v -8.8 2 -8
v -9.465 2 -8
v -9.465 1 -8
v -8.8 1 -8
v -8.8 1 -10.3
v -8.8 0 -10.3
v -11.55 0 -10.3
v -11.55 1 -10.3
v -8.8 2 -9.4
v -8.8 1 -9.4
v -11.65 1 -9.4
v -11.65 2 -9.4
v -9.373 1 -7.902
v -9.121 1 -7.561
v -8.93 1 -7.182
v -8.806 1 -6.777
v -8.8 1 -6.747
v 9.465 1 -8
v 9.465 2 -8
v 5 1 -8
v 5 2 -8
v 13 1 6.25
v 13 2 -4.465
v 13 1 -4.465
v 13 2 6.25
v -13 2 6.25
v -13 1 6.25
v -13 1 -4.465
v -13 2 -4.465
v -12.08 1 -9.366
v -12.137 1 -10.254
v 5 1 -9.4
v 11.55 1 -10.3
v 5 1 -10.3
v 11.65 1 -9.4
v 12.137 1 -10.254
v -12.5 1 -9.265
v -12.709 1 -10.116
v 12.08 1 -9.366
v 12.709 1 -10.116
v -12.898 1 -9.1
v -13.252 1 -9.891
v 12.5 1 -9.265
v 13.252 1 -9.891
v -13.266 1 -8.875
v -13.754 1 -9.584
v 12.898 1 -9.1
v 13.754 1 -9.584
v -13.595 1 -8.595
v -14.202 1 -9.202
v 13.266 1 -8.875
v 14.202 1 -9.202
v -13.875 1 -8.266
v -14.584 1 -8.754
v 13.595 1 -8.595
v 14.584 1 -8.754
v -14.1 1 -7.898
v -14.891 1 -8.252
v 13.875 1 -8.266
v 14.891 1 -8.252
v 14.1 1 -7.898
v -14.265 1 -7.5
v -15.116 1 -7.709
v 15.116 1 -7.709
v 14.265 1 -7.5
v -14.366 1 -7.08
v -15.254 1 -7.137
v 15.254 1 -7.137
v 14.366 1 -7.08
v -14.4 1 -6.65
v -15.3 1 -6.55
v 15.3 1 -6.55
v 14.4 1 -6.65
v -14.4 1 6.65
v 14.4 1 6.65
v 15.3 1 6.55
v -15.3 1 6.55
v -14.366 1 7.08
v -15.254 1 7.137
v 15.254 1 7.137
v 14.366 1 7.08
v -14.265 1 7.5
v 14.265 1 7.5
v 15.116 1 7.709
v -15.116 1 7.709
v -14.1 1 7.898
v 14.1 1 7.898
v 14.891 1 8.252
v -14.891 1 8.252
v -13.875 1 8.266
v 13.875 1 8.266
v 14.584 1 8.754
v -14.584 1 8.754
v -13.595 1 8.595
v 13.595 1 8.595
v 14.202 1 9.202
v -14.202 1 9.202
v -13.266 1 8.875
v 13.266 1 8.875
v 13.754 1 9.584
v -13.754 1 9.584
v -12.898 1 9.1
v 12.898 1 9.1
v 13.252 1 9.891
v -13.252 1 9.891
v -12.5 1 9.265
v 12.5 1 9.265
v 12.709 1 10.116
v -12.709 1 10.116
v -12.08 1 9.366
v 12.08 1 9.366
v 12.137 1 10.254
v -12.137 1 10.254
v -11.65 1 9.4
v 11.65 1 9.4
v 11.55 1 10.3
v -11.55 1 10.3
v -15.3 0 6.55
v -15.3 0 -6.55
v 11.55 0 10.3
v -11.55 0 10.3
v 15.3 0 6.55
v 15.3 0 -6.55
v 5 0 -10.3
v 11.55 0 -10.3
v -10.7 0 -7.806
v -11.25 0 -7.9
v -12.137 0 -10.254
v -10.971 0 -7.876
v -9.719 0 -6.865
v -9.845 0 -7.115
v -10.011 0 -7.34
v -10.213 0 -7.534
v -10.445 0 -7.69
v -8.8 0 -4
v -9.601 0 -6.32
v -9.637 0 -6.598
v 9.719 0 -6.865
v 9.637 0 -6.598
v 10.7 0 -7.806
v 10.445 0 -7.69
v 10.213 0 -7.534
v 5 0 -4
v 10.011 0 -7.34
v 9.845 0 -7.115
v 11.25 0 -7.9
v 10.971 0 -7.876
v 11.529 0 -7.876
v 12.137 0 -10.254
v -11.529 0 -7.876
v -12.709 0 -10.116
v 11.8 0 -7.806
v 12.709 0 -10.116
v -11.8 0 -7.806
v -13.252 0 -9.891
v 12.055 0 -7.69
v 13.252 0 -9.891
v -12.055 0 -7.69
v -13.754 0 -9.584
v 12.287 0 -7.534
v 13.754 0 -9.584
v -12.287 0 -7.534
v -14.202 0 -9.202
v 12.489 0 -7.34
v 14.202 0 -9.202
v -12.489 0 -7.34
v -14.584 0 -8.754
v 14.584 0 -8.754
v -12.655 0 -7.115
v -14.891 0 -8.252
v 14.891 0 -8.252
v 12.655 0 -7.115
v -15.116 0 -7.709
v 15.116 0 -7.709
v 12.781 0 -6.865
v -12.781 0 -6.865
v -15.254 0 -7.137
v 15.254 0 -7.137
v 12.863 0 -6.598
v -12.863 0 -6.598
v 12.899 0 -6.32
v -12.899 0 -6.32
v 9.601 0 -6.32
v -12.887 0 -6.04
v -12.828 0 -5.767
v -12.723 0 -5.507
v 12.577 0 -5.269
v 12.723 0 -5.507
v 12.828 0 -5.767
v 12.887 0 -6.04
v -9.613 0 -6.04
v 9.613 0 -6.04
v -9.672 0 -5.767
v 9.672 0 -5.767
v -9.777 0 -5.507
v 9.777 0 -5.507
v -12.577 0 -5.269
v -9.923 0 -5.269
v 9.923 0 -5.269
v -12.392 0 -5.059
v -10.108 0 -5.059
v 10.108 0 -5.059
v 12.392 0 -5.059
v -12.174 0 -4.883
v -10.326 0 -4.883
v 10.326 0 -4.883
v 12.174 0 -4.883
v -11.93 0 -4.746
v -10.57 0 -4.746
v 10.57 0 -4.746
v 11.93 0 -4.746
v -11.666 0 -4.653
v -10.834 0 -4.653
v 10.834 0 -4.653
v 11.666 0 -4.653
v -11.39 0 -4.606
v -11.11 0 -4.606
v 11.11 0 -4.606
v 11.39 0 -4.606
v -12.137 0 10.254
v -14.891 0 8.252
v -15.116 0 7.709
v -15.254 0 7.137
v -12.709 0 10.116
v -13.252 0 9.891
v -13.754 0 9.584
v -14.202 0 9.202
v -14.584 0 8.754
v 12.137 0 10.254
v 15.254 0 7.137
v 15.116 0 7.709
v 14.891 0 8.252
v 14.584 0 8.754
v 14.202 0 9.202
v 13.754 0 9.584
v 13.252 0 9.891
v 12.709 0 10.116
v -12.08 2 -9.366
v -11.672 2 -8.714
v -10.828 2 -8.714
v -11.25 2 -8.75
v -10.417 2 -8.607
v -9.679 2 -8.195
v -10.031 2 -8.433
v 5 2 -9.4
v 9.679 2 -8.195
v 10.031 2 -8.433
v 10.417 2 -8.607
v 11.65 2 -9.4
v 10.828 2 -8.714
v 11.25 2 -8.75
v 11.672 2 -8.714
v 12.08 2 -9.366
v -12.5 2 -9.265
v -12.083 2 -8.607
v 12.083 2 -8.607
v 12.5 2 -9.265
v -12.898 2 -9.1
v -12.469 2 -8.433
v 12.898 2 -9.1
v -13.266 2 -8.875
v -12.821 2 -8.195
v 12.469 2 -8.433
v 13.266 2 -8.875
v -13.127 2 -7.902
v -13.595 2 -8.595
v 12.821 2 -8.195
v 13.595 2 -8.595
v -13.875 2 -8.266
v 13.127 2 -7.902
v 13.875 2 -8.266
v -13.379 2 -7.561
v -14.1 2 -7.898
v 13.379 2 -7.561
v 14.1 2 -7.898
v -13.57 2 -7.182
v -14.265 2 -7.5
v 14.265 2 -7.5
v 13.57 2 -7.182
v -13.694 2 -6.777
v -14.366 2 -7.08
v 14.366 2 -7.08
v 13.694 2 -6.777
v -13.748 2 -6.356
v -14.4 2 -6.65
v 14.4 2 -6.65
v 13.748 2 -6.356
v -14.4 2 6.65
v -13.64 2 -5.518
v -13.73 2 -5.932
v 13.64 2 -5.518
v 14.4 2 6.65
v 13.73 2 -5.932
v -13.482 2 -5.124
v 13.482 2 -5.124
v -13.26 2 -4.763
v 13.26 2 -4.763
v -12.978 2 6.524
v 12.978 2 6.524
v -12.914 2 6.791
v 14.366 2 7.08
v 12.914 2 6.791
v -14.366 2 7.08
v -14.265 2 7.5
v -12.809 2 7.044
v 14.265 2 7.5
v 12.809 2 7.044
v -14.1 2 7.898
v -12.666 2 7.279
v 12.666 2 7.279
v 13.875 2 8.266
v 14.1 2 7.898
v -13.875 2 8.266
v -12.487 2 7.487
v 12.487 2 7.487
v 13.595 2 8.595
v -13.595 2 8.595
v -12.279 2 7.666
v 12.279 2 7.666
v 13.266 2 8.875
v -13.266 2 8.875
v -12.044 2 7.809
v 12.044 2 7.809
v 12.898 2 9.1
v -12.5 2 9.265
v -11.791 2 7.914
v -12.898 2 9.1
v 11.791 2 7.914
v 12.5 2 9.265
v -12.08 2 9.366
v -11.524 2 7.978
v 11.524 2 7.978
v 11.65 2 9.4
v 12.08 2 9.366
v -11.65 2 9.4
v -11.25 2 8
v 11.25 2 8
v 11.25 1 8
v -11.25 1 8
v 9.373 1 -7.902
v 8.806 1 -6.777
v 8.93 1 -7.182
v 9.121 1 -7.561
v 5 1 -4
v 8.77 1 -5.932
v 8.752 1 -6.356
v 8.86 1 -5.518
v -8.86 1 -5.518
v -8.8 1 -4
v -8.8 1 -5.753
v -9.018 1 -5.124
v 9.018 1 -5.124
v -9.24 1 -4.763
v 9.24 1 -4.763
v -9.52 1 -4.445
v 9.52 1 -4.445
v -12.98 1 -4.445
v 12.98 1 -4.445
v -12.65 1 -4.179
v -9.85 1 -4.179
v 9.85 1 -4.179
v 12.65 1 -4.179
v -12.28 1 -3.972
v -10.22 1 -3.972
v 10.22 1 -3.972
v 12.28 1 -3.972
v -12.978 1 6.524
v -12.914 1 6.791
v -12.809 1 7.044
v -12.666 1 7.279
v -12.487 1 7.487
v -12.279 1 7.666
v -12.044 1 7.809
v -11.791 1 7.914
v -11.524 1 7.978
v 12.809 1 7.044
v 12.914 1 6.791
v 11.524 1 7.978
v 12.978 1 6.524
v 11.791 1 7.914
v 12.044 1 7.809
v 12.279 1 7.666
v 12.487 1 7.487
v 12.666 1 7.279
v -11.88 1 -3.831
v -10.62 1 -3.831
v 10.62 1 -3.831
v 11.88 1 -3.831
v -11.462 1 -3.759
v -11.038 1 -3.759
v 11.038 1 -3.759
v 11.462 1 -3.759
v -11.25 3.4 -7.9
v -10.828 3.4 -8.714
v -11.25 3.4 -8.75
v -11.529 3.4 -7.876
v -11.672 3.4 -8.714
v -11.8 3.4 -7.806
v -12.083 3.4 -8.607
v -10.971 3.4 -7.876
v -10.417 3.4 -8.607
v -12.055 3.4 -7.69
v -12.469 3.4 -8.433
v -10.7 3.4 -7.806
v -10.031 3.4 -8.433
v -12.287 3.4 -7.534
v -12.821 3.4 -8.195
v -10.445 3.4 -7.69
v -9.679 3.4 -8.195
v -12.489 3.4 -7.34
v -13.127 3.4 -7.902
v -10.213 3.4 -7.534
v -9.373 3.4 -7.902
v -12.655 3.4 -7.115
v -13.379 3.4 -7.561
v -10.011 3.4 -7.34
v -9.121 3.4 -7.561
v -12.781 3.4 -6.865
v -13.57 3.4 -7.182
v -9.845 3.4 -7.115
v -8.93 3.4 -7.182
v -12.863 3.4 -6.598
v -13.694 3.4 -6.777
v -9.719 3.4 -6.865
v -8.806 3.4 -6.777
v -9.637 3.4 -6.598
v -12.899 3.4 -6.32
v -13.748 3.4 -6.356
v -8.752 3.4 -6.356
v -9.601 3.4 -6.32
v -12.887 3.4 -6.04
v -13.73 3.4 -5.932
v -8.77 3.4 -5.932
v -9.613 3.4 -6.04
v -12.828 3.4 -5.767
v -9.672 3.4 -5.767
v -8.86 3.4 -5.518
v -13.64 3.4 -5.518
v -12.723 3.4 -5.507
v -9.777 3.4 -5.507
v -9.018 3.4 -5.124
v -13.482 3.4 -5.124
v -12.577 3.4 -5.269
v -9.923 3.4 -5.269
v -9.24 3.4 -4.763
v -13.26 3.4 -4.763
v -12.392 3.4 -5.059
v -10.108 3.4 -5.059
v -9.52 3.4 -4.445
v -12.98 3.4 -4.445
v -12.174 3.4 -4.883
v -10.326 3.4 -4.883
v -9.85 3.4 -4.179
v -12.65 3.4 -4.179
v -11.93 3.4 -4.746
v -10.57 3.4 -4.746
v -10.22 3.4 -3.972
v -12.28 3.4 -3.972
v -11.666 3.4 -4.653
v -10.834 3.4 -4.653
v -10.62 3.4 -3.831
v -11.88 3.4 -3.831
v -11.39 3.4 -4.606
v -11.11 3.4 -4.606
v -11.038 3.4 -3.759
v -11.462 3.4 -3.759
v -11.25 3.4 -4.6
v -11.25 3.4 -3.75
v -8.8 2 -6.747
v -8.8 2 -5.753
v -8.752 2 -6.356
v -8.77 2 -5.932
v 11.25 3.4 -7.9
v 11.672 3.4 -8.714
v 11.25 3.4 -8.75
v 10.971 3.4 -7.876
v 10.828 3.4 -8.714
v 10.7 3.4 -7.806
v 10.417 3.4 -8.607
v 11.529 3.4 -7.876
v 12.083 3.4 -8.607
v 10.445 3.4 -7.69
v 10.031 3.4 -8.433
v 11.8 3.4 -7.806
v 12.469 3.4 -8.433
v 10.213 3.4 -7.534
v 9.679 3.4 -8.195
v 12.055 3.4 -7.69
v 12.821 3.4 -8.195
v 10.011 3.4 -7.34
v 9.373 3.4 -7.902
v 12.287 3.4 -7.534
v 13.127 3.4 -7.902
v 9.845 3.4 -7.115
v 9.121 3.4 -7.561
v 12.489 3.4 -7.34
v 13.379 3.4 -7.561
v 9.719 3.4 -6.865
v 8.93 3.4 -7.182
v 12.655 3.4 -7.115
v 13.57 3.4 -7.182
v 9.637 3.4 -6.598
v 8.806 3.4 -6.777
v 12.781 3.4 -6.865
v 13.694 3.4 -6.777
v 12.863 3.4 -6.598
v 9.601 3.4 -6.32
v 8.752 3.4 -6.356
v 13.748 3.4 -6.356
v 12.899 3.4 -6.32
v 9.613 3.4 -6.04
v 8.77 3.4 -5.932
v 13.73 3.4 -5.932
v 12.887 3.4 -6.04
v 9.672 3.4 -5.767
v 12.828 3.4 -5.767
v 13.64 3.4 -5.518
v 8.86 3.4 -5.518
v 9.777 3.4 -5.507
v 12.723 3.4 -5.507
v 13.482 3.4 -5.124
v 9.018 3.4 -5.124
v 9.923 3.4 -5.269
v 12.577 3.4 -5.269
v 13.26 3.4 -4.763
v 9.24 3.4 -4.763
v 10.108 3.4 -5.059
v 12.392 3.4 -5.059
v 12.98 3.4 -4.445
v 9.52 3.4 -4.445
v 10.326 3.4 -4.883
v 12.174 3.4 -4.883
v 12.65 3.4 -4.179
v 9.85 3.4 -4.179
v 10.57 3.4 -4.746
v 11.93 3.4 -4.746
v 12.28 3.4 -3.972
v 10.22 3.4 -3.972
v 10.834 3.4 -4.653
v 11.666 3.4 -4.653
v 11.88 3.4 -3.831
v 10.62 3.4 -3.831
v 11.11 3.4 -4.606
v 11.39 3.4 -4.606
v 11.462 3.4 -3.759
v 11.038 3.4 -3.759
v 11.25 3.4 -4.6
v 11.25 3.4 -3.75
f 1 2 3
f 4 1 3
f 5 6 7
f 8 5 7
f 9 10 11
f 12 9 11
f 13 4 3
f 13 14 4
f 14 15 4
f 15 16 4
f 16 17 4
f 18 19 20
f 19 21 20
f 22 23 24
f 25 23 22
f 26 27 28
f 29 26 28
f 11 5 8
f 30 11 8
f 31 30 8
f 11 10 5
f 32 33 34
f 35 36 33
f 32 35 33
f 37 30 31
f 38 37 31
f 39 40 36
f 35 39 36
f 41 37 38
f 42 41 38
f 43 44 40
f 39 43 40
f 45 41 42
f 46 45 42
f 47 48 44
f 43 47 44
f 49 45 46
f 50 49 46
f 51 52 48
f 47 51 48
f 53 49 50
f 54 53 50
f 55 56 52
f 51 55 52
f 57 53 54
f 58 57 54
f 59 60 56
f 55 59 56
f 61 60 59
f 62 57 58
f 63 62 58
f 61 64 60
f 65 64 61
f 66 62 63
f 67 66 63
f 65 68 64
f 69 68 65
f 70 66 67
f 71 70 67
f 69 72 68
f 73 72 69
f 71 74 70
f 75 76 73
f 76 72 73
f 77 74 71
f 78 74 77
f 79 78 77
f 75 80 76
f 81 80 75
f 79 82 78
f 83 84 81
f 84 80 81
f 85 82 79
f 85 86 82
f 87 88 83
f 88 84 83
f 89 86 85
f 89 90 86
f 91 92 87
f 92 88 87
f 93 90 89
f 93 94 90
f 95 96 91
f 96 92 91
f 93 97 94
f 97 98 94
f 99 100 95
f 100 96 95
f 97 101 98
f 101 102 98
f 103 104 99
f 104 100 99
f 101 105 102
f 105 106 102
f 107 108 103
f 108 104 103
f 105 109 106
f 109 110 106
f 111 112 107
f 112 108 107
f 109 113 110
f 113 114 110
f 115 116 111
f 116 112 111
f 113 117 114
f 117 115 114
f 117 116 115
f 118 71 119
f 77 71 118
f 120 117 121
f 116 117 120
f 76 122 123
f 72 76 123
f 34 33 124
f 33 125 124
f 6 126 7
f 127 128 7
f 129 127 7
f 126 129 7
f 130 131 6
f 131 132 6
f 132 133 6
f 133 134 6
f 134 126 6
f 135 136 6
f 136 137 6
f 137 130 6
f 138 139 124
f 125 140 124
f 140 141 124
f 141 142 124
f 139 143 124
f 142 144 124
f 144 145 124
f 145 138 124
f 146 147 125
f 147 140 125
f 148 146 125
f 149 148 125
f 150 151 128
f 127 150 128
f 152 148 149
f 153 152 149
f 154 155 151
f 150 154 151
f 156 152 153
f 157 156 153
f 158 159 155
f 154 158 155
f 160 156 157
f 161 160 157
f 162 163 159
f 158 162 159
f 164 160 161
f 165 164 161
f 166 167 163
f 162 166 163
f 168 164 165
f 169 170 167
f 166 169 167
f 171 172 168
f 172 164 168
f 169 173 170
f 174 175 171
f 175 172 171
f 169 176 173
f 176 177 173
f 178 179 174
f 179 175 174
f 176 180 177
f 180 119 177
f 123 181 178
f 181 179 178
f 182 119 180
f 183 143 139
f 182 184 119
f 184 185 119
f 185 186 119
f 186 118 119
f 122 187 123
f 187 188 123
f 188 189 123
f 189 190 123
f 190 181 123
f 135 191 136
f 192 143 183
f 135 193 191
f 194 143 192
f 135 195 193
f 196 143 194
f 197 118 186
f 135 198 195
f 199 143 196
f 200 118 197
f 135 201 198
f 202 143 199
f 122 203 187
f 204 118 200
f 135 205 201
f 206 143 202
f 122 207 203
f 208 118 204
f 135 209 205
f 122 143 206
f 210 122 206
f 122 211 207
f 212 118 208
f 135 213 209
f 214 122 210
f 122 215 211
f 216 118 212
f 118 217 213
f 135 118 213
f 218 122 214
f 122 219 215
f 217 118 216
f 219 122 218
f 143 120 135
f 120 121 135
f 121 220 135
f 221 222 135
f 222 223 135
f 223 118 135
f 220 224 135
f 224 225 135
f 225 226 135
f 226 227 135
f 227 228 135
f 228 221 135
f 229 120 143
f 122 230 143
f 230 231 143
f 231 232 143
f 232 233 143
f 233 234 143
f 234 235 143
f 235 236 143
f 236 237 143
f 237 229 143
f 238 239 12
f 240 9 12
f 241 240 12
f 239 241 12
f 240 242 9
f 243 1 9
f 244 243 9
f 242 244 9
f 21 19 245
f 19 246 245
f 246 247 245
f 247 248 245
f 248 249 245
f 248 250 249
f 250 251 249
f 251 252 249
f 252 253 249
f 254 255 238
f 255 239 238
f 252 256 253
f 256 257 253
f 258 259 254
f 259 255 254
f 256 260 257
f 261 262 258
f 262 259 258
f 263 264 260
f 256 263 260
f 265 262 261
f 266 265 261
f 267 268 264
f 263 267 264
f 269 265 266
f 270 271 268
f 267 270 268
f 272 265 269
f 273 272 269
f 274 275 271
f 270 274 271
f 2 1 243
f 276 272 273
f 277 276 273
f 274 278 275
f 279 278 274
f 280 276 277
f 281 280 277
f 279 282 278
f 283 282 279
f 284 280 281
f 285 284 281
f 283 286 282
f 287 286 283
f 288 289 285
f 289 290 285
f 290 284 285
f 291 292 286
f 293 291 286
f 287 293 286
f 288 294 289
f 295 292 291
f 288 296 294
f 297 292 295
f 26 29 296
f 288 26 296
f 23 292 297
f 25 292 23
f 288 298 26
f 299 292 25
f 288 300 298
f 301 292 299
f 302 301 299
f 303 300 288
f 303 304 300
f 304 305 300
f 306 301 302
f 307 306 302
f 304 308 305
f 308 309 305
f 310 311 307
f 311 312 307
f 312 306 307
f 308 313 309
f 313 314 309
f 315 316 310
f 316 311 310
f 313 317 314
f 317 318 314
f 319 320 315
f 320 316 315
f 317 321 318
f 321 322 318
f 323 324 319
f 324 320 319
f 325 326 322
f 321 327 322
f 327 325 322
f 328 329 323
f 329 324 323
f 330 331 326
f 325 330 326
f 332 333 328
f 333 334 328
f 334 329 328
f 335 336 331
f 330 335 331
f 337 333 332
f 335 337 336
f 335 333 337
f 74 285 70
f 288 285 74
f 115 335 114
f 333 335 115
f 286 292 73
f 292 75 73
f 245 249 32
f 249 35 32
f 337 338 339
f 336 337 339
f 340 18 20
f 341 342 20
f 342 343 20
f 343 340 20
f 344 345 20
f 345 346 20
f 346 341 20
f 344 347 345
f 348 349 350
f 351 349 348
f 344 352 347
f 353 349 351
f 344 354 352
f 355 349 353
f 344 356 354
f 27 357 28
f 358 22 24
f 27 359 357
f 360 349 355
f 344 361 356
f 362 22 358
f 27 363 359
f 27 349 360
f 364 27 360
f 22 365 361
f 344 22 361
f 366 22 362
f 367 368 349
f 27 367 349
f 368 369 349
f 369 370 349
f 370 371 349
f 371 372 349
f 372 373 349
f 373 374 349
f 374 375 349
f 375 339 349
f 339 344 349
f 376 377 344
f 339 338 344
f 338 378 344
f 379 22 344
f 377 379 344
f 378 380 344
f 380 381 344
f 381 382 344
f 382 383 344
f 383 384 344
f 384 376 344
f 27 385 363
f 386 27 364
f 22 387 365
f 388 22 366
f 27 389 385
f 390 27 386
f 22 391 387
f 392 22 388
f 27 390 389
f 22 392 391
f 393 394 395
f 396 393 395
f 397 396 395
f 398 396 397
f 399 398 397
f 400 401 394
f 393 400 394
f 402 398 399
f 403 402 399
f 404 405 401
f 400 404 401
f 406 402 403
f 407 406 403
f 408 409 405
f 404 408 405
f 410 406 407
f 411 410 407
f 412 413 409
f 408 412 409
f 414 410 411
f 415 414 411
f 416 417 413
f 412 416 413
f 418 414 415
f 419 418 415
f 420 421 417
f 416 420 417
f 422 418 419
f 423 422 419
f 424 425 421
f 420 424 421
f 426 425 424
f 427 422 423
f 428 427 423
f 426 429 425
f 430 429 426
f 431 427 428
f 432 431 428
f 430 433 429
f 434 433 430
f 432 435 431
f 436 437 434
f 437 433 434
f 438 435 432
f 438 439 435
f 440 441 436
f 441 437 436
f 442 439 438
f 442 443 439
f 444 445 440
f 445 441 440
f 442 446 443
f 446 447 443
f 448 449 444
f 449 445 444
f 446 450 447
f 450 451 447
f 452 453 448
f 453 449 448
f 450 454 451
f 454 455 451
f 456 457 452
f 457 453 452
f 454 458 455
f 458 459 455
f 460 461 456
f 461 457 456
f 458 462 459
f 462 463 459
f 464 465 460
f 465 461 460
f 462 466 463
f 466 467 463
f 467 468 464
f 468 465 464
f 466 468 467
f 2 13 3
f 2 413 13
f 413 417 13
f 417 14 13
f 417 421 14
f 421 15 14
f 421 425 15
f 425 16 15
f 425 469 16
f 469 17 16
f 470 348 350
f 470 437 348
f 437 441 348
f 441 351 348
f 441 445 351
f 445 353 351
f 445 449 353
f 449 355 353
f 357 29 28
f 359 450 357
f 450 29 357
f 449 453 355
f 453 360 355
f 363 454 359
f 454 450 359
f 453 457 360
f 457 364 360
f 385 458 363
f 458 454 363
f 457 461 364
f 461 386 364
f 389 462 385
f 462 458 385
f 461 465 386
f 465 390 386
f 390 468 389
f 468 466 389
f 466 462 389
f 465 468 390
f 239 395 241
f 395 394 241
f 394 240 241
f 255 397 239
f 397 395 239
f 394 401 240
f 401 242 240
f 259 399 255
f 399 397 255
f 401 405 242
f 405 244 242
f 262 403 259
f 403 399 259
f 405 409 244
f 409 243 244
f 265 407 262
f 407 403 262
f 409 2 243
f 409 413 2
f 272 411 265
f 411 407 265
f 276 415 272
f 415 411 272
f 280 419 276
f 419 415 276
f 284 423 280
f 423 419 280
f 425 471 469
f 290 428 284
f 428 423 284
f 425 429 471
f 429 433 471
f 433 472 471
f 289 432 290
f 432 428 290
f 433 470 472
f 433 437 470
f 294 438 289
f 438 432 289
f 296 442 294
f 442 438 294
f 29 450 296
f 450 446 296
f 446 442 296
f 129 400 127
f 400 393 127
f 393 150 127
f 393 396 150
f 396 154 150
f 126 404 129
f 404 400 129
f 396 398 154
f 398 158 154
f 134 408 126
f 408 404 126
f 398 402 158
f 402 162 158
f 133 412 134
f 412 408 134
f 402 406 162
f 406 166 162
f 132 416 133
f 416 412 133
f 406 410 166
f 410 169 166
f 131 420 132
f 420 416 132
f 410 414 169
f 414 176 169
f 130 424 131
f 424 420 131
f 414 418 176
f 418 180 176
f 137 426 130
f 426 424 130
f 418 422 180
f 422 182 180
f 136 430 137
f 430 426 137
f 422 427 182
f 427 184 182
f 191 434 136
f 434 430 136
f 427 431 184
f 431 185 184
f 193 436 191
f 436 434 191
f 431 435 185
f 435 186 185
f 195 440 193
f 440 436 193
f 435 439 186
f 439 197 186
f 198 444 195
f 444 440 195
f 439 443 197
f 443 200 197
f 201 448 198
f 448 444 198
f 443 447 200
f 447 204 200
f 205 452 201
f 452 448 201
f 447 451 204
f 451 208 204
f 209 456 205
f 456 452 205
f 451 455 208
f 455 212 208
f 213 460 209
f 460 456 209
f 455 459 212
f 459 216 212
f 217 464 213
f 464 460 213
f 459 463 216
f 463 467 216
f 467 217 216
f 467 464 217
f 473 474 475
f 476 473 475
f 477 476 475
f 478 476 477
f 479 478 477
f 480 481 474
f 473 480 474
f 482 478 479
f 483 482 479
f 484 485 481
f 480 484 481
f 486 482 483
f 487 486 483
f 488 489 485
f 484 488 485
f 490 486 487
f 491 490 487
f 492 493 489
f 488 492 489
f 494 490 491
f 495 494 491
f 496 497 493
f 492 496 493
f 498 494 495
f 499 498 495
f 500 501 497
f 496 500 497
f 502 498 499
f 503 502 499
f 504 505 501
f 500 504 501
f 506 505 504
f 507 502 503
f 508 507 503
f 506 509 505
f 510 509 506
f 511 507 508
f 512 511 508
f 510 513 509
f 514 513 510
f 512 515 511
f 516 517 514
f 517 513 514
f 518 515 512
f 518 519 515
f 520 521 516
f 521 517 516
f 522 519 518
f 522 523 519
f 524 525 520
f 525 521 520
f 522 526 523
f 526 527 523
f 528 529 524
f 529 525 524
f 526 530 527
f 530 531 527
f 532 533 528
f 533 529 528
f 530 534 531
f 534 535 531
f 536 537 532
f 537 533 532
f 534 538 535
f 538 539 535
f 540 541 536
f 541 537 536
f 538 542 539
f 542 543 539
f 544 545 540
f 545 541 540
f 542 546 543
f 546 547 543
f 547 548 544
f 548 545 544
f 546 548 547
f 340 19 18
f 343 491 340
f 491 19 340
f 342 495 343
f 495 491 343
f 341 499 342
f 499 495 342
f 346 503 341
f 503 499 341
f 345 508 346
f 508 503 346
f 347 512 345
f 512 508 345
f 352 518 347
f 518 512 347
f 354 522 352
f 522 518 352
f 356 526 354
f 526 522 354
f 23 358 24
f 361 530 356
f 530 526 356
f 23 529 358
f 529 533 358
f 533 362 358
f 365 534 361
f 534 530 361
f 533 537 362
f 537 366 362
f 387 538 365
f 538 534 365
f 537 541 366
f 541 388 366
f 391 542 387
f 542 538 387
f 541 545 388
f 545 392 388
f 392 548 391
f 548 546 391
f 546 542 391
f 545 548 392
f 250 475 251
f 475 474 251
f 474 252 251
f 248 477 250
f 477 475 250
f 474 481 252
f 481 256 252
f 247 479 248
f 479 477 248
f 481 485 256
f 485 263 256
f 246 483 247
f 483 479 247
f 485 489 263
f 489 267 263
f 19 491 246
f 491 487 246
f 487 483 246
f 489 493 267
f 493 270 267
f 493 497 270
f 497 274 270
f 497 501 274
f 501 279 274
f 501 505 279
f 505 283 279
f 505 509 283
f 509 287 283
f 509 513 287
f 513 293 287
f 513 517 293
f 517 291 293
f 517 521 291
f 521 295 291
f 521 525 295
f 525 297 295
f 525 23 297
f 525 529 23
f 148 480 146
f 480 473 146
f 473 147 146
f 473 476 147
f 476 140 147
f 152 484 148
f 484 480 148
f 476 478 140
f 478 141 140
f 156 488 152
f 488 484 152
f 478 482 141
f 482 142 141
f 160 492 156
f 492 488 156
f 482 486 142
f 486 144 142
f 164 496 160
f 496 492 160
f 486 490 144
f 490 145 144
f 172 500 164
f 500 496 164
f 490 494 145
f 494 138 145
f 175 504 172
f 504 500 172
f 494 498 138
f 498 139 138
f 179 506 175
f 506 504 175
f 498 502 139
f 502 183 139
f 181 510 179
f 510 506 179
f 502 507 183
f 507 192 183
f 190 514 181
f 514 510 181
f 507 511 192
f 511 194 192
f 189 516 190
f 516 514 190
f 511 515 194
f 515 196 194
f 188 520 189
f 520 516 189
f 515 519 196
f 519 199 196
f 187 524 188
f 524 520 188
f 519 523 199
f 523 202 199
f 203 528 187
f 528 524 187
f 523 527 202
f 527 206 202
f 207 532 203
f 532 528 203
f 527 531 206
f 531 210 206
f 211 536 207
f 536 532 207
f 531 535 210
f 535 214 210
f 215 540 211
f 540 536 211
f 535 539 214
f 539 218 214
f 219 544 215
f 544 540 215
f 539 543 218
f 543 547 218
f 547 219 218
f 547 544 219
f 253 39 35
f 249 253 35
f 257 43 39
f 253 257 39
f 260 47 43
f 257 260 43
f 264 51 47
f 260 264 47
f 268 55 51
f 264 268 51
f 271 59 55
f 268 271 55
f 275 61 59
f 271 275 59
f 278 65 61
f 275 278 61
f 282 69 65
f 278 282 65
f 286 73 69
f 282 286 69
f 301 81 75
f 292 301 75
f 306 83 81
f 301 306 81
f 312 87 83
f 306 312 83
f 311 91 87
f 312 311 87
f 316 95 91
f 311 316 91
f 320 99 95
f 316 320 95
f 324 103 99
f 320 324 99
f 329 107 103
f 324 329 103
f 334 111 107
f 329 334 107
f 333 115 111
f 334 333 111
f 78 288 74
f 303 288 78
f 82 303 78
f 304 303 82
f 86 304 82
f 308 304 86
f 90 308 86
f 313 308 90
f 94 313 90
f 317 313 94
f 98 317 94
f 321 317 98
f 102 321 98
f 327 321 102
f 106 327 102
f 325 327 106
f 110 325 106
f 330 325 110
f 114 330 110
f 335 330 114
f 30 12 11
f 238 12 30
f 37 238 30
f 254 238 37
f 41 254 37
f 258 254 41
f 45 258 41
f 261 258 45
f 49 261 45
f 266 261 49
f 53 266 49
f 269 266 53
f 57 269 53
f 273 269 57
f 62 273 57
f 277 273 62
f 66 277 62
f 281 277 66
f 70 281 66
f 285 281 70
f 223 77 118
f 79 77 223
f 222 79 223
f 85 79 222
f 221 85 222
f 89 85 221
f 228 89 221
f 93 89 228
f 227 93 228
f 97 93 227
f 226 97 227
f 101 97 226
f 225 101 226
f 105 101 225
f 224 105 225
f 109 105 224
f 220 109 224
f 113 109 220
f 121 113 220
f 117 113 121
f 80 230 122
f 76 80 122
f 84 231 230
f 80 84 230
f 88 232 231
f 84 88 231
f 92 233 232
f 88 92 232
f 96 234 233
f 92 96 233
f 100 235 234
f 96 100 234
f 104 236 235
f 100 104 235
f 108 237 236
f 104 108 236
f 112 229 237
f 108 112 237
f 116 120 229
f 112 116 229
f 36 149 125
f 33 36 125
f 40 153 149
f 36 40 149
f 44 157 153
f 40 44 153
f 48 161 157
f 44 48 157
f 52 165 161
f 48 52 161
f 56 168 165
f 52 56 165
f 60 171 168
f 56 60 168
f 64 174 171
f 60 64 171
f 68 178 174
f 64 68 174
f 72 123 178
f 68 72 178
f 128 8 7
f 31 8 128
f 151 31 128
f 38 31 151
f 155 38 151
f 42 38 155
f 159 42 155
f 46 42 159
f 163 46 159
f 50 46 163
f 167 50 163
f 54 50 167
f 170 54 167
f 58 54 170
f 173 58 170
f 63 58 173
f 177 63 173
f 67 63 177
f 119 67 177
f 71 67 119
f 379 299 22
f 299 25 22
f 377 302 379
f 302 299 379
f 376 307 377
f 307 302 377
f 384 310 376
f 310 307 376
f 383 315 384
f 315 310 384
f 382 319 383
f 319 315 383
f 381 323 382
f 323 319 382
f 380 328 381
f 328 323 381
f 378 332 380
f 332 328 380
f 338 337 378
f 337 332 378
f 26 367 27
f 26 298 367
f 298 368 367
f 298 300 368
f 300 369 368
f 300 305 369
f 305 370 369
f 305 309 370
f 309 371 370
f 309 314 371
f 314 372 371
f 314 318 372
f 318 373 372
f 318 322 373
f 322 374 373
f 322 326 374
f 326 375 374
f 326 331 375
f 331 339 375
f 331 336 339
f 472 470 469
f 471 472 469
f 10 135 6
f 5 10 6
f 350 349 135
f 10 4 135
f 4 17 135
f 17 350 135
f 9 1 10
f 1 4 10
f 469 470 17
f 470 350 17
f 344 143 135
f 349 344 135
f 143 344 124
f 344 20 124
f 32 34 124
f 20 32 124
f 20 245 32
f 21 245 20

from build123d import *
from build123d.topology import SkipClean

# Parameters (mm, degrees)
SKETCH_1_W          = 30.6
SKETCH_1_H          = 20.6
EXTRUDE_1_DEPTH     = 1
SKETCH_2_W          = 28.8
SKETCH_2_H          = 18.8
SKETCH_2_W_2        = 26
SKETCH_2_H_2        = 16
EXTRUDE_2_DEPTH     = 1
SKETCH_3_R          = 2.5
SKETCH_3_R_2        = 1.65
EXTRUDE_3_DEPTH     = 2.4
FILLET_2_R          = 2.75
FILLET_3_R          = 3.75
FILLET_4_R          = 1.75
SKETCH_5_R          = 1.65
SKETCH_5_W          = 13.8
SKETCH_5_H          = 6.3
CUT_EXTRUDE_1_DEPTH = 2


with BuildPart() as part:
    # 草图1 → 凸台-拉伸1 (new body)
    with BuildSketch(Plane(origin=(0, 0, 0), x_dir=(1, 0, 0), z_dir=(0, 1, 0))):
        Rectangle(SKETCH_1_W, SKETCH_1_H)
    extrude(amount=EXTRUDE_1_DEPTH)

    # 草图2 → 凸台-拉伸2 (add)
    with BuildSketch(Plane(origin=(0, 1, 0), x_dir=(1, 0, 0), z_dir=(0, 1, 0))):
        Rectangle(SKETCH_2_W, SKETCH_2_H)
        Rectangle(SKETCH_2_W_2, SKETCH_2_H_2, mode=Mode.SUBTRACT)
    extrude(amount=EXTRUDE_2_DEPTH)

    # 草图3 → 凸台-拉伸3 (add)
    # profile 1 of 2: a face of its own
    with BuildSketch(Plane(origin=(0, 1, 0), x_dir=(1, 0, 0), z_dir=(0, 1, 0))):
        with Locations(Location((-11.25, 6.25, 0), (0, 0, 44.427004001))):
            Circle(SKETCH_3_R)
        with Locations(Location((-11.25, 6.25, 0), (0, 0, 270))):
            Circle(SKETCH_3_R_2, mode=Mode.SUBTRACT)
    # profile 2 of 2: a face of its own
    with BuildSketch(Plane(origin=(0, 1, 0), x_dir=(1, 0, 0), z_dir=(0, 1, 0))):
        with Locations(Location((11.25, 6.25, 0), (0, 0, 135.572995999))):
            Circle(SKETCH_3_R)
        with Locations(Location((11.25, 6.25, 0), (0, 0, 270))):
            Circle(SKETCH_3_R_2, mode=Mode.SUBTRACT)
    extrude(amount=EXTRUDE_3_DEPTH)

    # 圆角2
    fillet_2_edges = [part.edges().sort_by_distance(p)[0] for p in [
        (-14.4, 1.5, -9.4),
        (-14.4, 1.5, 9.4),
        (14.4, 1.5, 9.4),
        (14.4, 1.5, -9.4),
    ]]
    fillet(fillet_2_edges, radius=FILLET_2_R)

    # 圆角3
    fillet_3_edges = [part.edges().sort_by_distance(p)[0] for p in [
        (-15.3, 0.5, -10.3),
        (15.3, 0.5, -10.3),
        (15.3, 0.5, 10.3),
        (-15.3, 0.5, 10.3),
    ]]
    fillet(fillet_3_edges, radius=FILLET_3_R)

    # 圆角4
    fillet_4_edges = [part.edges().sort_by_distance(p)[0] for p in [
        (-13, 1.5, 8),
        (13, 1.5, 8),
    ]]
    fillet(fillet_4_edges, radius=FILLET_4_R)

    # 草图5 → 切除-拉伸1 (cut)
    with SkipClean():  # the faces are left unmerged after this step: merging them gives an invalid solid
        with BuildSketch(Plane.XZ):
            with Locations(Location((-11.25, -6.25, 0), (0, 0, 270))):
                Circle(SKETCH_5_R)
            with Locations(Location((11.25, -6.25, 0), (0, 0, 270))):
                Circle(SKETCH_5_R)
            with Locations((-1.9, -7.15)):
                Rectangle(SKETCH_5_W, SKETCH_5_H)
        extrude(amount=-CUT_EXTRUDE_1_DEPTH, mode=Mode.SUBTRACT)


solid = part.part
